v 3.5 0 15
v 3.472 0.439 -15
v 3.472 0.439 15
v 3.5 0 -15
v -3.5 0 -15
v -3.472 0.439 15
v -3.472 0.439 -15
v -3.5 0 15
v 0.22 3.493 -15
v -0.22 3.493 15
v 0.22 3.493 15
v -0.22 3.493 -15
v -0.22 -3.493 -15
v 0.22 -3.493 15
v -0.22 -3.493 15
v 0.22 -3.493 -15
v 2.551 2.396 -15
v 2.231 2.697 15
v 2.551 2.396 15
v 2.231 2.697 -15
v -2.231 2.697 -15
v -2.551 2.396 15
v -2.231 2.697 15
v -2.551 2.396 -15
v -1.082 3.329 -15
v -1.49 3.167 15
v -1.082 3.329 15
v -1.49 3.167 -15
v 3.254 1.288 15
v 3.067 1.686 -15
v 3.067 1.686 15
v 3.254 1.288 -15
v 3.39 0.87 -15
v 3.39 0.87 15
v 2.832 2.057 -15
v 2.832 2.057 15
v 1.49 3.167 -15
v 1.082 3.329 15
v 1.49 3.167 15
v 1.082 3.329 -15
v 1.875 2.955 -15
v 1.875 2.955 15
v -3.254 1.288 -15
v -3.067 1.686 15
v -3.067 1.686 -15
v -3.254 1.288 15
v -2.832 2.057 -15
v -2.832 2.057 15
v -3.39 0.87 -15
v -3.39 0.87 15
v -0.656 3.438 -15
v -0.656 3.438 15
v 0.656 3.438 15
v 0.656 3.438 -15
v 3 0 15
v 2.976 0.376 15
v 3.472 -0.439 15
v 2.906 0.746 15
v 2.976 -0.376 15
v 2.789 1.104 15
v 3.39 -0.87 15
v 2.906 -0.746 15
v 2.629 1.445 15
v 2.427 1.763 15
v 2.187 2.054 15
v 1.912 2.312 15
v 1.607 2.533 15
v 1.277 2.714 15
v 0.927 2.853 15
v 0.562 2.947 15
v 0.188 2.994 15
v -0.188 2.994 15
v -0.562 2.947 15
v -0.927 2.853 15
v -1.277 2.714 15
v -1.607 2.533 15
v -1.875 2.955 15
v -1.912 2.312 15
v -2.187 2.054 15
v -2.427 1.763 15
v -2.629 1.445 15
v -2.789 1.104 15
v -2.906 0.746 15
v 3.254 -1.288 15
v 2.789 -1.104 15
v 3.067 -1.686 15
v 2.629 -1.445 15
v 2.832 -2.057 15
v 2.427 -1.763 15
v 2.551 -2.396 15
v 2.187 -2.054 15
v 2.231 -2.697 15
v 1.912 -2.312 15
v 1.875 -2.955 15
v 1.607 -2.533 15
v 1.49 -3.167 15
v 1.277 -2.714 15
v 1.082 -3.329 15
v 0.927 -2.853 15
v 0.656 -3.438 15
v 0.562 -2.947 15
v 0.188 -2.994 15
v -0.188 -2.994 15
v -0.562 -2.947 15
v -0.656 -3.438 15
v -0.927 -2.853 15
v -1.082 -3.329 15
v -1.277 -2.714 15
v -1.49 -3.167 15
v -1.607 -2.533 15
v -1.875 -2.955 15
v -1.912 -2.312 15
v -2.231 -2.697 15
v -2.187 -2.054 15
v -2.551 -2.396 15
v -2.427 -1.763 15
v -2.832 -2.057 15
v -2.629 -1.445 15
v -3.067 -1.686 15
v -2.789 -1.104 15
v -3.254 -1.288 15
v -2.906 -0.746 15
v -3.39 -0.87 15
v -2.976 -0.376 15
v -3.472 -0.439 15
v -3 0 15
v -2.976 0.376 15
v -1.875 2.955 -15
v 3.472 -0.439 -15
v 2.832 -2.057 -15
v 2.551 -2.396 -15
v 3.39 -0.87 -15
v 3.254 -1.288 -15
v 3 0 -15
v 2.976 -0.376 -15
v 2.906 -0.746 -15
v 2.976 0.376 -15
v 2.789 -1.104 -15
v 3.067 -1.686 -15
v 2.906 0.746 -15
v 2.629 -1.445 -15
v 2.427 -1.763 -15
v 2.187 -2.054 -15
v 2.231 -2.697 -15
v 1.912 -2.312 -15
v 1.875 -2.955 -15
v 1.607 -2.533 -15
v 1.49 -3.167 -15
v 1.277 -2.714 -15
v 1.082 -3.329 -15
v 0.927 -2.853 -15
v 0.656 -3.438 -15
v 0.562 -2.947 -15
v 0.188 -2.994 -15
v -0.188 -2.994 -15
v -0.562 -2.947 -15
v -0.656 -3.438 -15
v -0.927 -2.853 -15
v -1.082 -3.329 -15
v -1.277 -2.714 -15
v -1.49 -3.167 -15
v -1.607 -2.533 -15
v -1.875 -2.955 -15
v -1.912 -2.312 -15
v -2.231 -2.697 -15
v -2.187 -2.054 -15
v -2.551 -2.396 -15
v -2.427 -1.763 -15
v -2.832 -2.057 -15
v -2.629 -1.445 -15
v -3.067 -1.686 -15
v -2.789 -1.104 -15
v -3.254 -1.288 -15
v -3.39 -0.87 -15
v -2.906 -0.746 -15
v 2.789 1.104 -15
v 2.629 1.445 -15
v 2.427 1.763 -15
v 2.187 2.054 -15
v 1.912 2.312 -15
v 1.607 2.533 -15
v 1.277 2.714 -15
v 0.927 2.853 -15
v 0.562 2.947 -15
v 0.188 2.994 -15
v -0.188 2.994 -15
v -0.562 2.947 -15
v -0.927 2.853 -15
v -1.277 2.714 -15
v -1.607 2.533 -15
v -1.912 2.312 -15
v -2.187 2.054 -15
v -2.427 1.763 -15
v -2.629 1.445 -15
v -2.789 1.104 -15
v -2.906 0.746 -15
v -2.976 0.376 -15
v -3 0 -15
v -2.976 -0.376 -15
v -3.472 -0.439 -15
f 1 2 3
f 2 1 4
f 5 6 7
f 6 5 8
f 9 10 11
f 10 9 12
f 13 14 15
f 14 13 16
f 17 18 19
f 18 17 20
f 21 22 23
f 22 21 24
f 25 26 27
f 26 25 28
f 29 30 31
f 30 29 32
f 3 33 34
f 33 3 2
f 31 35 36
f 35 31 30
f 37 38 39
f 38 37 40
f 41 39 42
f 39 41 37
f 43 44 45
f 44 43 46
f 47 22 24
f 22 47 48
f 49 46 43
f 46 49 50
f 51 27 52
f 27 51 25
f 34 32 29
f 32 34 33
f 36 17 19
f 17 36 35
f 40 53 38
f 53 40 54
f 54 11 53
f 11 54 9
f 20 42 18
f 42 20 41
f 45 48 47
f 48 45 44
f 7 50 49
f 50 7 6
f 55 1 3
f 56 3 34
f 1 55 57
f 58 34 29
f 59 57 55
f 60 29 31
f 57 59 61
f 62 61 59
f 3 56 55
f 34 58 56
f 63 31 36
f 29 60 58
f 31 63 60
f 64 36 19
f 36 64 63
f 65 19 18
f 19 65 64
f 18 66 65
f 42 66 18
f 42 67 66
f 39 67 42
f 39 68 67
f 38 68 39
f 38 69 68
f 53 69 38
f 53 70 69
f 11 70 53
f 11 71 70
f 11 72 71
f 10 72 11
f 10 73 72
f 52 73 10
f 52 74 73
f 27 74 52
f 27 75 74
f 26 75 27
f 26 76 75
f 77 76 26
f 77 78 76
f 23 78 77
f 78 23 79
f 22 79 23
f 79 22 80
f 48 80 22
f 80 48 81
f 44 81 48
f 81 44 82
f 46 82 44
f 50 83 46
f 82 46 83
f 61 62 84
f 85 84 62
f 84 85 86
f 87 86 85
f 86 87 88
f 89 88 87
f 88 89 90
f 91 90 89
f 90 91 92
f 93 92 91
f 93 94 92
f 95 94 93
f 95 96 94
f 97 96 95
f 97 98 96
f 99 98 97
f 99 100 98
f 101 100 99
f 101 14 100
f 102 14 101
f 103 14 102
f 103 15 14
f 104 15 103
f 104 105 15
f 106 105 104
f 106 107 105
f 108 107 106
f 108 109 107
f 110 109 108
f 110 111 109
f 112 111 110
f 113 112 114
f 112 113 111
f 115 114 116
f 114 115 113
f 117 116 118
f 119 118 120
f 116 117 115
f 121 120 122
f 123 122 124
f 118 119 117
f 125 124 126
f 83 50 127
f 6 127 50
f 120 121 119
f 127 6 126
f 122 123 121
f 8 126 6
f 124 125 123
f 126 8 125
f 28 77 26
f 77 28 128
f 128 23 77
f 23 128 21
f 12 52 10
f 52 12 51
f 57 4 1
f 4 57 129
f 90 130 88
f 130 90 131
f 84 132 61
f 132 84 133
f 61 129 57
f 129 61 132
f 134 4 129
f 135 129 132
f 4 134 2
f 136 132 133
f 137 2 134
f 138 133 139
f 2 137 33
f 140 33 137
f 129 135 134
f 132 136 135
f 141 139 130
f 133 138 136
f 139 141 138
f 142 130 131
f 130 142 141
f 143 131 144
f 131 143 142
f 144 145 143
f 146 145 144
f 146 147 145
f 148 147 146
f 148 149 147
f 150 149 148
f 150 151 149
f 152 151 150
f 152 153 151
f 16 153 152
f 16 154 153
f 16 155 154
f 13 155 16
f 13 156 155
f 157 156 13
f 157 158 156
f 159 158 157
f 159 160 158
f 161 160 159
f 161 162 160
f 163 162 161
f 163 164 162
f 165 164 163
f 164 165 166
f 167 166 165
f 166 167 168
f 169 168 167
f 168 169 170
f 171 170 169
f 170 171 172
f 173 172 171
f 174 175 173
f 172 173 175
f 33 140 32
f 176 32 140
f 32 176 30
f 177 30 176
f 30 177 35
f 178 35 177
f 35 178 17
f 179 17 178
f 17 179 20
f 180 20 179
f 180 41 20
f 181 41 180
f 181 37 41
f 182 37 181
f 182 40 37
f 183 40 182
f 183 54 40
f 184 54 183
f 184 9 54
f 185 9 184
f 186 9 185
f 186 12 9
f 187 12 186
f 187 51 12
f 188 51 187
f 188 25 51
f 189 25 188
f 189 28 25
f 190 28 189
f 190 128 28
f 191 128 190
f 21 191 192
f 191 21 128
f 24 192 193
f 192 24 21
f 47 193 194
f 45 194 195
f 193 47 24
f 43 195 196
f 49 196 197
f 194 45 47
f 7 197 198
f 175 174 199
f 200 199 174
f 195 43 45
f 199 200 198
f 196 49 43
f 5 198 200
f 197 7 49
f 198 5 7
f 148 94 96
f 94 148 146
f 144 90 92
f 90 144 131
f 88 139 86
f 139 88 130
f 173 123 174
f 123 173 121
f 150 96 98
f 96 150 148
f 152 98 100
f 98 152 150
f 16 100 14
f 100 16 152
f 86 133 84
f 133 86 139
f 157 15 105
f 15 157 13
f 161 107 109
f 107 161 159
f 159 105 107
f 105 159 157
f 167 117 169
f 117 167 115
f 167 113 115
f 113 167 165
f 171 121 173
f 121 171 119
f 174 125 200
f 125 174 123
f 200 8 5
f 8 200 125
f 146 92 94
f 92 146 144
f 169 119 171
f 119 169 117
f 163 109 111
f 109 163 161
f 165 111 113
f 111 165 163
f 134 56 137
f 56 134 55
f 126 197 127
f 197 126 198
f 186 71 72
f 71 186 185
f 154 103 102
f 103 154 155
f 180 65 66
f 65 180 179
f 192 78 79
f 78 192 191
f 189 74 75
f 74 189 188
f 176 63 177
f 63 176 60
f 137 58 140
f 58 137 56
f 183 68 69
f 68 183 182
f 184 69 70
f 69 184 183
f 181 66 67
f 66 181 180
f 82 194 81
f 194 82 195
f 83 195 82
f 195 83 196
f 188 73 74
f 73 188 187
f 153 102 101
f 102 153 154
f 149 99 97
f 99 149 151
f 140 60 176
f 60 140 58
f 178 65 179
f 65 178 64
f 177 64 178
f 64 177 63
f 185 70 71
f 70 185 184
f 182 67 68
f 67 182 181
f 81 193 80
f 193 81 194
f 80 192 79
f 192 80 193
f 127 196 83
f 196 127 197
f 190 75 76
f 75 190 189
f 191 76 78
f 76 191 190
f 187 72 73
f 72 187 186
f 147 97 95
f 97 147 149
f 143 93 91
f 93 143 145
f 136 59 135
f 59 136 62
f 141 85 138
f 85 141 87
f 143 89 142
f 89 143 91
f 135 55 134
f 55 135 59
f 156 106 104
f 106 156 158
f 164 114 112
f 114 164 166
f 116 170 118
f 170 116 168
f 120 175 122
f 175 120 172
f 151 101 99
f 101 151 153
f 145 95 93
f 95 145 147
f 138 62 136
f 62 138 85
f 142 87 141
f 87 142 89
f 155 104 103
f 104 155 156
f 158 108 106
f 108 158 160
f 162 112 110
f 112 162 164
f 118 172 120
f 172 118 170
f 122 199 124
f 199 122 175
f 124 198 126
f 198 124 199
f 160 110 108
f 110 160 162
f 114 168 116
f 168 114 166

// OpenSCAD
$fn = 50;


difference() {
	union() {
		translate(v = [0, 0, -15.0000000000]) {
			cylinder(h = 30, r = 3.5000000000);
		}
	}
	union() {
		translate(v = [0, 0, -100.0000000000]) {
			cylinder(h = 200, r = 3);
		}
	}
}
